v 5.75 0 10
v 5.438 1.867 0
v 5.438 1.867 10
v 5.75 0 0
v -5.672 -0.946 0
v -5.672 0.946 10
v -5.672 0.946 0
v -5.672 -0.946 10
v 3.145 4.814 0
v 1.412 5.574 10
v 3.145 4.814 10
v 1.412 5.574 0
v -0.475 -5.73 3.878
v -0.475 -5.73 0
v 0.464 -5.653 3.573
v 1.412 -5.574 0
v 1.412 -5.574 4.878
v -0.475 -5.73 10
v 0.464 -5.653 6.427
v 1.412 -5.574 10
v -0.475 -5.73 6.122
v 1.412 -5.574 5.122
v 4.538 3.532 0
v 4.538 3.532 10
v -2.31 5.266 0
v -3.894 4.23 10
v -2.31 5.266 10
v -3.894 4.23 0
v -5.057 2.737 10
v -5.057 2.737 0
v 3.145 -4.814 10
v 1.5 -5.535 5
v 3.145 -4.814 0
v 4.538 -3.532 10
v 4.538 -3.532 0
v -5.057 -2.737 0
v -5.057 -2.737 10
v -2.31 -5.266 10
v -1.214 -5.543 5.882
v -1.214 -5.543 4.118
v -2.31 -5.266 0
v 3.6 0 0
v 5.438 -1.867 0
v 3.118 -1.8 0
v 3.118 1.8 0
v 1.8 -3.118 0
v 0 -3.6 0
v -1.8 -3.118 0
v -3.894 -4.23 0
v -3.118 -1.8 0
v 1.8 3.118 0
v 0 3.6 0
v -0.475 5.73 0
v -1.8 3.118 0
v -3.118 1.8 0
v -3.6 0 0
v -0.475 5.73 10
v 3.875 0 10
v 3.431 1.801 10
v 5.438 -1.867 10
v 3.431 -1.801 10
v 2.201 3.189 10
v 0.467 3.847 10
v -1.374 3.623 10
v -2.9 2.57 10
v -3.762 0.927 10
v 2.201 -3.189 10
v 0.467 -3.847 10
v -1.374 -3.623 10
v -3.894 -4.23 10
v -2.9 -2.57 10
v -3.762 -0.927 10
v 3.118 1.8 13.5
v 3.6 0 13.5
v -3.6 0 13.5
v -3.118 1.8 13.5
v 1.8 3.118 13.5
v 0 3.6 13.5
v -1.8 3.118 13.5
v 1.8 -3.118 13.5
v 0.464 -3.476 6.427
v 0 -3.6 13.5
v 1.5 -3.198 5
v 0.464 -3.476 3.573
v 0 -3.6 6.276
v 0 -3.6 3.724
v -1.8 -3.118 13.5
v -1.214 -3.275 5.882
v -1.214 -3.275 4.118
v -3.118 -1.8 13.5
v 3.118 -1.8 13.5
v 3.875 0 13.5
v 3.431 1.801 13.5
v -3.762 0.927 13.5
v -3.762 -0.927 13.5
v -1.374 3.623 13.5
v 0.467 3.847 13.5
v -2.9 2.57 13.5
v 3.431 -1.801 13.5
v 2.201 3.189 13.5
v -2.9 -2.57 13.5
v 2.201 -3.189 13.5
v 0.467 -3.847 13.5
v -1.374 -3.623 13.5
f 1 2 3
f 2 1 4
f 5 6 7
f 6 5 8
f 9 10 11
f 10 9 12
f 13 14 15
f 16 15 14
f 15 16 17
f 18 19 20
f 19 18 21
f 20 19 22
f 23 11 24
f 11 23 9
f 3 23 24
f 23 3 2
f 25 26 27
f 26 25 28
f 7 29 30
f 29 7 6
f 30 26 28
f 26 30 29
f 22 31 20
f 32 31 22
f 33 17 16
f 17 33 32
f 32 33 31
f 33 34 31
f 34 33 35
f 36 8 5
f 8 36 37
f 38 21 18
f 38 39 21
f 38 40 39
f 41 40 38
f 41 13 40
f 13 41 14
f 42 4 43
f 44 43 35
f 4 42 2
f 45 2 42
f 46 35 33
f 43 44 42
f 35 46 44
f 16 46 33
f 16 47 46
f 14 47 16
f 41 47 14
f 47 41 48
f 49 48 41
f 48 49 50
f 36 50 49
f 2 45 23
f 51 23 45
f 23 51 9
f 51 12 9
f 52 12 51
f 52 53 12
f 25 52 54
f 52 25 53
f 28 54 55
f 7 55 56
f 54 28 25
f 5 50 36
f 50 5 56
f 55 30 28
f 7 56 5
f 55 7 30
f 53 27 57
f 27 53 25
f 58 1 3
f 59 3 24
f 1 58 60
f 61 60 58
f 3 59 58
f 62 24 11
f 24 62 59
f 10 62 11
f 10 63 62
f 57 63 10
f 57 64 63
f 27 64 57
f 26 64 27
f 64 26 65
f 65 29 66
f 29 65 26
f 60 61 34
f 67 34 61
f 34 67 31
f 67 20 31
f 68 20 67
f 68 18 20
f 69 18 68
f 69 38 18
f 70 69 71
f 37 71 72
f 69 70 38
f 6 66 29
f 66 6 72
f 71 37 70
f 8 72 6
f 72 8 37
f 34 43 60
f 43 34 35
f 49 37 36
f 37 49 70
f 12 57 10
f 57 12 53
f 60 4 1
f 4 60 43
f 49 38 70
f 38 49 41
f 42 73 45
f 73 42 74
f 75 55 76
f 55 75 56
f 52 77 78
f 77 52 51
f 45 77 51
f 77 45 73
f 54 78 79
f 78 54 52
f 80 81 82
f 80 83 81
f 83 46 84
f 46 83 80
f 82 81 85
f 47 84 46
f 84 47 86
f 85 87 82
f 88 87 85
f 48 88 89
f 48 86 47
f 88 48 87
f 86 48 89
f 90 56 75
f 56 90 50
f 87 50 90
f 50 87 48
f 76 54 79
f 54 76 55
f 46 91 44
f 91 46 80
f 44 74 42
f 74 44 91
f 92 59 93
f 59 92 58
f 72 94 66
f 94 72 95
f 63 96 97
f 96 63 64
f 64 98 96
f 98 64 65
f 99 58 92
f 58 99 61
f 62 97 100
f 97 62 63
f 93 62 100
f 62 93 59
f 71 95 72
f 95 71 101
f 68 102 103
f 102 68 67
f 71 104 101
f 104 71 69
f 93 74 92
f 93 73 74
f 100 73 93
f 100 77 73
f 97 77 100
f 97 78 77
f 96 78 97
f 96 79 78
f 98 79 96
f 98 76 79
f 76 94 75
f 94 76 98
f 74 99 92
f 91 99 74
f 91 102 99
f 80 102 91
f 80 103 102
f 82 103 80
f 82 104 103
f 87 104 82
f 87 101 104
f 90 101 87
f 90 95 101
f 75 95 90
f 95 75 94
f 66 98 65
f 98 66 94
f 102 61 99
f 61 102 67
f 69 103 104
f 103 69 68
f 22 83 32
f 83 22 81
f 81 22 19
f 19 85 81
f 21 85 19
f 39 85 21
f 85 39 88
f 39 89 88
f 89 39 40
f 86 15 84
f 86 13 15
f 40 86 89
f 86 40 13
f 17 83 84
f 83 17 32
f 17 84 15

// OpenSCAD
ball_od = 50;
ball_offset = 50;
thick = 3;
height = 10;

difference() {
	union() {
		difference() {
			cylinder(d = 11.5000000000, h = 10);
			translate(v = [0, 0, -5.0000000000]) {
				cylinder(d = 7.2000000000, h = 20);
			}
		}
		translate(v = [0, 0, 10]) {
			difference() {
				cylinder(d = 7.7500000000, h = 3.5000000000);
				translate(v = [0, 0, -1.7500000000]) {
					cylinder(d = 7.2000000000, h = 7.0000000000);
				}
			}
		}
	}
	translate(v = [0, 0, 5.0000000000]) {
		rotate(a = [90, 0, 0]) {
			cylinder(d = 3, h = 30);
		}
	}
}
